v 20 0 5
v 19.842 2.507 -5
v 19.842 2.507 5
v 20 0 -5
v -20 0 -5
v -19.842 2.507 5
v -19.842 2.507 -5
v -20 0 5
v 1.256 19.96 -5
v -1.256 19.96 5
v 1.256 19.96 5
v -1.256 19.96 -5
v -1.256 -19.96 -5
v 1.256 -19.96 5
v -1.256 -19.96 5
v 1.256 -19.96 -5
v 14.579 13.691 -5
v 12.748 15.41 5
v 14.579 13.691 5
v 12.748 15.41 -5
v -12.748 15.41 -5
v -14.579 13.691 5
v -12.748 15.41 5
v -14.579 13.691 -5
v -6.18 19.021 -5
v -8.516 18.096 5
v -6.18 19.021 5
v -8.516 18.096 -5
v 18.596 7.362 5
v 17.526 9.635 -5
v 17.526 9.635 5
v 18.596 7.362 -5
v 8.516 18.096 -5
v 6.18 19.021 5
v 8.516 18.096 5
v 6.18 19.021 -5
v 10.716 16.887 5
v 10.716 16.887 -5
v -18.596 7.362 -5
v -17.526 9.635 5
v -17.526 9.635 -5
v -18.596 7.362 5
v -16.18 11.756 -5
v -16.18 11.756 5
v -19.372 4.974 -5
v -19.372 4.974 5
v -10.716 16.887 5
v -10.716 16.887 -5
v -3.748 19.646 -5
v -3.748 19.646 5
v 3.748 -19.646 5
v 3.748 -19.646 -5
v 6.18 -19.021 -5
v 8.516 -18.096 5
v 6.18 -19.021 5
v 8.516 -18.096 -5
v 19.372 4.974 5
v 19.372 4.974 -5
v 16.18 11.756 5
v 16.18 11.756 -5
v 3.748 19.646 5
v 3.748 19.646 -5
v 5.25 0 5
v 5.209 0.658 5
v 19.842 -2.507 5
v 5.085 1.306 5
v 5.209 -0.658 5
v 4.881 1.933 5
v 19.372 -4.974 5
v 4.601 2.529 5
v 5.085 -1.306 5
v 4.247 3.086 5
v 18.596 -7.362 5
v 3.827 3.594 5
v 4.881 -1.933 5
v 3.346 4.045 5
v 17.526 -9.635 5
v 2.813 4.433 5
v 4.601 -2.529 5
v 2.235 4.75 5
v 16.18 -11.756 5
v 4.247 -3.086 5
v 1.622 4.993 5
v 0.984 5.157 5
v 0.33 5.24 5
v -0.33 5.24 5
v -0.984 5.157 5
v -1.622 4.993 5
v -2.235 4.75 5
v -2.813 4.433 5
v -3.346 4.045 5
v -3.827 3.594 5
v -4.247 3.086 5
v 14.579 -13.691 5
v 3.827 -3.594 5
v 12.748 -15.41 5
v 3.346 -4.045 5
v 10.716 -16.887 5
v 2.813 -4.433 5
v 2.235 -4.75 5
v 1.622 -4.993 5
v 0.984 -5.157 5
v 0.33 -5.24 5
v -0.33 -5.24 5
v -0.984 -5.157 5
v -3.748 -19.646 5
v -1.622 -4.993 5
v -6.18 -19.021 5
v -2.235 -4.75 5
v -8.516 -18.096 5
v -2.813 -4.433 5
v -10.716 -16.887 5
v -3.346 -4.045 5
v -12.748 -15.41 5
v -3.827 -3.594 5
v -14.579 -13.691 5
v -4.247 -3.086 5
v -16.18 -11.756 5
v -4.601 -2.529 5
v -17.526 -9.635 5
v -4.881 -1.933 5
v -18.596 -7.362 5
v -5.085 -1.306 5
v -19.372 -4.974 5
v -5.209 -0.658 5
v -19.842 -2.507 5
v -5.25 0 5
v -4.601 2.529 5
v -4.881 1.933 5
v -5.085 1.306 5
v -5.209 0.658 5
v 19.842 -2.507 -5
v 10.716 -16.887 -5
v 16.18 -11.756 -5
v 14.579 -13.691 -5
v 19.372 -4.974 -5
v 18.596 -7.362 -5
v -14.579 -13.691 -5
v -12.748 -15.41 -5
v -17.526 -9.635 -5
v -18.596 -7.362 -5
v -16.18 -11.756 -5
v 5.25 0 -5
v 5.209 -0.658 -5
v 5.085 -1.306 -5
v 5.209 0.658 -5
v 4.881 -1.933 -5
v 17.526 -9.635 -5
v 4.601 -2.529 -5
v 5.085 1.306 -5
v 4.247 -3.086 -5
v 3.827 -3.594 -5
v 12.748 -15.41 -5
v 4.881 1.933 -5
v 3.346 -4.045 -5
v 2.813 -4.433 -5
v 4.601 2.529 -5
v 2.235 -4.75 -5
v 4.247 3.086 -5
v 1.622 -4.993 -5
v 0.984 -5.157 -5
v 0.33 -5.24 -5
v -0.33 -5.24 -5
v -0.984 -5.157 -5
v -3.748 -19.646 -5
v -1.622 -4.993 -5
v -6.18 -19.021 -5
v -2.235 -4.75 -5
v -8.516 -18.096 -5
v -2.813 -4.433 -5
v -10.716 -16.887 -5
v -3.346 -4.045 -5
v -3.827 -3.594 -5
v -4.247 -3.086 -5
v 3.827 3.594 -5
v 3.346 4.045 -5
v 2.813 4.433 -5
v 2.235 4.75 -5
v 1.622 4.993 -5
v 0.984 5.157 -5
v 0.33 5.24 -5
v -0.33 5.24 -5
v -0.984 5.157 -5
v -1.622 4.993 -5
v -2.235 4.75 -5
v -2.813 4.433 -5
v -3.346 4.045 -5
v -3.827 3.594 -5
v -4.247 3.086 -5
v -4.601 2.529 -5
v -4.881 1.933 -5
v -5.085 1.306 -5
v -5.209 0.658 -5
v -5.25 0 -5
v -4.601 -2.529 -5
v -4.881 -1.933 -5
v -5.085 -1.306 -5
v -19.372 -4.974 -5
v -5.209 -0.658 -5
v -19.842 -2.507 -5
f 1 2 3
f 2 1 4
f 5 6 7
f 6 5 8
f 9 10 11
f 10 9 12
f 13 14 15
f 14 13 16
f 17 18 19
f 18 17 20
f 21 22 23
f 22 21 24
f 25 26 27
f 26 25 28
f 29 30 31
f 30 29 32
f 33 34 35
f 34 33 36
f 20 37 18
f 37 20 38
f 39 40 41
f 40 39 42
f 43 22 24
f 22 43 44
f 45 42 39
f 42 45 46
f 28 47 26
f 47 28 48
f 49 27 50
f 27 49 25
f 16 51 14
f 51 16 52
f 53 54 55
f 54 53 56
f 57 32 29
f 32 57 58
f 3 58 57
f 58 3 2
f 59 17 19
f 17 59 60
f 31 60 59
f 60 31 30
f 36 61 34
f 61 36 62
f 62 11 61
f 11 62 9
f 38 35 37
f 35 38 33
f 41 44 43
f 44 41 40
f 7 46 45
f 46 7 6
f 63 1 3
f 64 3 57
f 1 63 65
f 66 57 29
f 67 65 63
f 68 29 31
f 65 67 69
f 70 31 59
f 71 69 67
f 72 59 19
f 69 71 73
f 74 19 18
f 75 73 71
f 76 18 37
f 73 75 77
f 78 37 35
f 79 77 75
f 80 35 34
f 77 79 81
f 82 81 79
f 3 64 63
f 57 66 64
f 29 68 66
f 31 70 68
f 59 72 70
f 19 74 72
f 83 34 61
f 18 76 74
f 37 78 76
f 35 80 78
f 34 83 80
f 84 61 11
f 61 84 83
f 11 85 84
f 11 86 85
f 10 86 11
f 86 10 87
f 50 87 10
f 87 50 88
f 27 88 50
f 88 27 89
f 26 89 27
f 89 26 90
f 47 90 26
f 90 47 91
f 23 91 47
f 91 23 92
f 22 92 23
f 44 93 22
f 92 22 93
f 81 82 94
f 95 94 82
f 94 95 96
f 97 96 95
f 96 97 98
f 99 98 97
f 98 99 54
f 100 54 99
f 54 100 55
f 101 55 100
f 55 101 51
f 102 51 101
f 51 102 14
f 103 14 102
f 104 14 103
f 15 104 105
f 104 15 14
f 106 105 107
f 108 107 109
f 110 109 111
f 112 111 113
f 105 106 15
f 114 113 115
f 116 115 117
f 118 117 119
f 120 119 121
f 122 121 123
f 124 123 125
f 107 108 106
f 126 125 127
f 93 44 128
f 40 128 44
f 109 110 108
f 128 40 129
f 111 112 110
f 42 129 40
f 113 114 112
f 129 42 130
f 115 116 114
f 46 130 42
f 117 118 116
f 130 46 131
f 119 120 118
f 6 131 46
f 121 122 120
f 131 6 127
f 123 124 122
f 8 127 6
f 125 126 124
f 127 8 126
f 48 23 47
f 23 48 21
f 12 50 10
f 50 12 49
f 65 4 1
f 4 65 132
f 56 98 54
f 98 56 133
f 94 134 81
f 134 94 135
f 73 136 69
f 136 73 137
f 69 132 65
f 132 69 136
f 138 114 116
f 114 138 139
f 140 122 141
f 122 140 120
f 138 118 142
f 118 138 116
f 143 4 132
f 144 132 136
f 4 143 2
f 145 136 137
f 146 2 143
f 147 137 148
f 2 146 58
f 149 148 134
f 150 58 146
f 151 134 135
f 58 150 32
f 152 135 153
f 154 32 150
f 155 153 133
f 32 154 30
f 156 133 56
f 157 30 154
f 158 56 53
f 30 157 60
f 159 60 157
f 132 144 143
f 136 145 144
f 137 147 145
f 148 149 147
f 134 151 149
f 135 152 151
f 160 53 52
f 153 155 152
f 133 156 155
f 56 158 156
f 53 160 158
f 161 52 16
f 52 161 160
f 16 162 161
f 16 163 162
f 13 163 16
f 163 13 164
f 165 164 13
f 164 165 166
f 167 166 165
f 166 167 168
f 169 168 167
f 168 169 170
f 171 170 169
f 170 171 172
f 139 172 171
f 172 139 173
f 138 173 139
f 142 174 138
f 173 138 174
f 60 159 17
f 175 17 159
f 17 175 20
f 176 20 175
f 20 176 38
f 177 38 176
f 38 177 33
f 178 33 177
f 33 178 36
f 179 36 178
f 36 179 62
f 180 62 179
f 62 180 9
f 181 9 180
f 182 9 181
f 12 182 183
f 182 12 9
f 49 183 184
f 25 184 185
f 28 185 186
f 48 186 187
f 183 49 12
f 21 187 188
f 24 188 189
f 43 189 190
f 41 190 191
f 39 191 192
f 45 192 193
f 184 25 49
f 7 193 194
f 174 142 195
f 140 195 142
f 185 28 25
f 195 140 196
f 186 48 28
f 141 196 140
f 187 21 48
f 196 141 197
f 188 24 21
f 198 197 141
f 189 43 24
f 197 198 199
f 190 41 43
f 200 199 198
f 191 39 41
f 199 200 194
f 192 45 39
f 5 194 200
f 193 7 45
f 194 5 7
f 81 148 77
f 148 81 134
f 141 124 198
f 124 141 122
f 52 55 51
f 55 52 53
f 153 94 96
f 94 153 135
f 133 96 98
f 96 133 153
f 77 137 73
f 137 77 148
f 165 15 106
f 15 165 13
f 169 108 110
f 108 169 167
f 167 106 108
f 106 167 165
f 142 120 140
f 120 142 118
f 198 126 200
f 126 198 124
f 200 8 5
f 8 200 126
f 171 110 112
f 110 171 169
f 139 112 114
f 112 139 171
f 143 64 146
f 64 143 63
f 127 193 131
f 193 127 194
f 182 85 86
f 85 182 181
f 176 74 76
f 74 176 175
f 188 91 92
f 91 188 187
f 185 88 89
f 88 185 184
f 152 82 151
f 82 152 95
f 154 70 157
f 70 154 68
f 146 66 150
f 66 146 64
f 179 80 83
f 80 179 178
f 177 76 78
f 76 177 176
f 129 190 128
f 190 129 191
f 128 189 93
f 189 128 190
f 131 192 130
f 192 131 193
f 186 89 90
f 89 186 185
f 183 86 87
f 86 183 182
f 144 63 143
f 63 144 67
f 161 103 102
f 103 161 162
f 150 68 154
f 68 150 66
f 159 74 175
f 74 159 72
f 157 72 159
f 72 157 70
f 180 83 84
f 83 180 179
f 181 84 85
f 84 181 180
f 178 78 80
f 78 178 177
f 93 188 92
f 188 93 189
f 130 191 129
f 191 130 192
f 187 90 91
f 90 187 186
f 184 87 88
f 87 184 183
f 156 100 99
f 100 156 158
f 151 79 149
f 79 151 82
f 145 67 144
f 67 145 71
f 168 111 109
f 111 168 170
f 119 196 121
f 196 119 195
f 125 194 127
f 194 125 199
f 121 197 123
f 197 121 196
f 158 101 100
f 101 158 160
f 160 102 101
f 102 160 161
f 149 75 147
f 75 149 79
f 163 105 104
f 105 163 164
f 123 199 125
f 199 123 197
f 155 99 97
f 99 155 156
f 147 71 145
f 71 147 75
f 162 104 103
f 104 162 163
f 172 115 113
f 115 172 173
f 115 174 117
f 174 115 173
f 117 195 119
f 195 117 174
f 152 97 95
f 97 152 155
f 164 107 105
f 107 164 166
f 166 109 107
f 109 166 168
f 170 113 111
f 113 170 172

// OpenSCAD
$fn = 50;


difference() {
	union() {
		translate(v = [0, 0, -5.0000000000]) {
			cylinder(h = 10, r = 20.0000000000);
		}
	}
	union() {
		translate(v = [0, 0, -100.0000000000]) {
			cylinder(h = 200, r = 5.2500000000);
		}
	}
}
